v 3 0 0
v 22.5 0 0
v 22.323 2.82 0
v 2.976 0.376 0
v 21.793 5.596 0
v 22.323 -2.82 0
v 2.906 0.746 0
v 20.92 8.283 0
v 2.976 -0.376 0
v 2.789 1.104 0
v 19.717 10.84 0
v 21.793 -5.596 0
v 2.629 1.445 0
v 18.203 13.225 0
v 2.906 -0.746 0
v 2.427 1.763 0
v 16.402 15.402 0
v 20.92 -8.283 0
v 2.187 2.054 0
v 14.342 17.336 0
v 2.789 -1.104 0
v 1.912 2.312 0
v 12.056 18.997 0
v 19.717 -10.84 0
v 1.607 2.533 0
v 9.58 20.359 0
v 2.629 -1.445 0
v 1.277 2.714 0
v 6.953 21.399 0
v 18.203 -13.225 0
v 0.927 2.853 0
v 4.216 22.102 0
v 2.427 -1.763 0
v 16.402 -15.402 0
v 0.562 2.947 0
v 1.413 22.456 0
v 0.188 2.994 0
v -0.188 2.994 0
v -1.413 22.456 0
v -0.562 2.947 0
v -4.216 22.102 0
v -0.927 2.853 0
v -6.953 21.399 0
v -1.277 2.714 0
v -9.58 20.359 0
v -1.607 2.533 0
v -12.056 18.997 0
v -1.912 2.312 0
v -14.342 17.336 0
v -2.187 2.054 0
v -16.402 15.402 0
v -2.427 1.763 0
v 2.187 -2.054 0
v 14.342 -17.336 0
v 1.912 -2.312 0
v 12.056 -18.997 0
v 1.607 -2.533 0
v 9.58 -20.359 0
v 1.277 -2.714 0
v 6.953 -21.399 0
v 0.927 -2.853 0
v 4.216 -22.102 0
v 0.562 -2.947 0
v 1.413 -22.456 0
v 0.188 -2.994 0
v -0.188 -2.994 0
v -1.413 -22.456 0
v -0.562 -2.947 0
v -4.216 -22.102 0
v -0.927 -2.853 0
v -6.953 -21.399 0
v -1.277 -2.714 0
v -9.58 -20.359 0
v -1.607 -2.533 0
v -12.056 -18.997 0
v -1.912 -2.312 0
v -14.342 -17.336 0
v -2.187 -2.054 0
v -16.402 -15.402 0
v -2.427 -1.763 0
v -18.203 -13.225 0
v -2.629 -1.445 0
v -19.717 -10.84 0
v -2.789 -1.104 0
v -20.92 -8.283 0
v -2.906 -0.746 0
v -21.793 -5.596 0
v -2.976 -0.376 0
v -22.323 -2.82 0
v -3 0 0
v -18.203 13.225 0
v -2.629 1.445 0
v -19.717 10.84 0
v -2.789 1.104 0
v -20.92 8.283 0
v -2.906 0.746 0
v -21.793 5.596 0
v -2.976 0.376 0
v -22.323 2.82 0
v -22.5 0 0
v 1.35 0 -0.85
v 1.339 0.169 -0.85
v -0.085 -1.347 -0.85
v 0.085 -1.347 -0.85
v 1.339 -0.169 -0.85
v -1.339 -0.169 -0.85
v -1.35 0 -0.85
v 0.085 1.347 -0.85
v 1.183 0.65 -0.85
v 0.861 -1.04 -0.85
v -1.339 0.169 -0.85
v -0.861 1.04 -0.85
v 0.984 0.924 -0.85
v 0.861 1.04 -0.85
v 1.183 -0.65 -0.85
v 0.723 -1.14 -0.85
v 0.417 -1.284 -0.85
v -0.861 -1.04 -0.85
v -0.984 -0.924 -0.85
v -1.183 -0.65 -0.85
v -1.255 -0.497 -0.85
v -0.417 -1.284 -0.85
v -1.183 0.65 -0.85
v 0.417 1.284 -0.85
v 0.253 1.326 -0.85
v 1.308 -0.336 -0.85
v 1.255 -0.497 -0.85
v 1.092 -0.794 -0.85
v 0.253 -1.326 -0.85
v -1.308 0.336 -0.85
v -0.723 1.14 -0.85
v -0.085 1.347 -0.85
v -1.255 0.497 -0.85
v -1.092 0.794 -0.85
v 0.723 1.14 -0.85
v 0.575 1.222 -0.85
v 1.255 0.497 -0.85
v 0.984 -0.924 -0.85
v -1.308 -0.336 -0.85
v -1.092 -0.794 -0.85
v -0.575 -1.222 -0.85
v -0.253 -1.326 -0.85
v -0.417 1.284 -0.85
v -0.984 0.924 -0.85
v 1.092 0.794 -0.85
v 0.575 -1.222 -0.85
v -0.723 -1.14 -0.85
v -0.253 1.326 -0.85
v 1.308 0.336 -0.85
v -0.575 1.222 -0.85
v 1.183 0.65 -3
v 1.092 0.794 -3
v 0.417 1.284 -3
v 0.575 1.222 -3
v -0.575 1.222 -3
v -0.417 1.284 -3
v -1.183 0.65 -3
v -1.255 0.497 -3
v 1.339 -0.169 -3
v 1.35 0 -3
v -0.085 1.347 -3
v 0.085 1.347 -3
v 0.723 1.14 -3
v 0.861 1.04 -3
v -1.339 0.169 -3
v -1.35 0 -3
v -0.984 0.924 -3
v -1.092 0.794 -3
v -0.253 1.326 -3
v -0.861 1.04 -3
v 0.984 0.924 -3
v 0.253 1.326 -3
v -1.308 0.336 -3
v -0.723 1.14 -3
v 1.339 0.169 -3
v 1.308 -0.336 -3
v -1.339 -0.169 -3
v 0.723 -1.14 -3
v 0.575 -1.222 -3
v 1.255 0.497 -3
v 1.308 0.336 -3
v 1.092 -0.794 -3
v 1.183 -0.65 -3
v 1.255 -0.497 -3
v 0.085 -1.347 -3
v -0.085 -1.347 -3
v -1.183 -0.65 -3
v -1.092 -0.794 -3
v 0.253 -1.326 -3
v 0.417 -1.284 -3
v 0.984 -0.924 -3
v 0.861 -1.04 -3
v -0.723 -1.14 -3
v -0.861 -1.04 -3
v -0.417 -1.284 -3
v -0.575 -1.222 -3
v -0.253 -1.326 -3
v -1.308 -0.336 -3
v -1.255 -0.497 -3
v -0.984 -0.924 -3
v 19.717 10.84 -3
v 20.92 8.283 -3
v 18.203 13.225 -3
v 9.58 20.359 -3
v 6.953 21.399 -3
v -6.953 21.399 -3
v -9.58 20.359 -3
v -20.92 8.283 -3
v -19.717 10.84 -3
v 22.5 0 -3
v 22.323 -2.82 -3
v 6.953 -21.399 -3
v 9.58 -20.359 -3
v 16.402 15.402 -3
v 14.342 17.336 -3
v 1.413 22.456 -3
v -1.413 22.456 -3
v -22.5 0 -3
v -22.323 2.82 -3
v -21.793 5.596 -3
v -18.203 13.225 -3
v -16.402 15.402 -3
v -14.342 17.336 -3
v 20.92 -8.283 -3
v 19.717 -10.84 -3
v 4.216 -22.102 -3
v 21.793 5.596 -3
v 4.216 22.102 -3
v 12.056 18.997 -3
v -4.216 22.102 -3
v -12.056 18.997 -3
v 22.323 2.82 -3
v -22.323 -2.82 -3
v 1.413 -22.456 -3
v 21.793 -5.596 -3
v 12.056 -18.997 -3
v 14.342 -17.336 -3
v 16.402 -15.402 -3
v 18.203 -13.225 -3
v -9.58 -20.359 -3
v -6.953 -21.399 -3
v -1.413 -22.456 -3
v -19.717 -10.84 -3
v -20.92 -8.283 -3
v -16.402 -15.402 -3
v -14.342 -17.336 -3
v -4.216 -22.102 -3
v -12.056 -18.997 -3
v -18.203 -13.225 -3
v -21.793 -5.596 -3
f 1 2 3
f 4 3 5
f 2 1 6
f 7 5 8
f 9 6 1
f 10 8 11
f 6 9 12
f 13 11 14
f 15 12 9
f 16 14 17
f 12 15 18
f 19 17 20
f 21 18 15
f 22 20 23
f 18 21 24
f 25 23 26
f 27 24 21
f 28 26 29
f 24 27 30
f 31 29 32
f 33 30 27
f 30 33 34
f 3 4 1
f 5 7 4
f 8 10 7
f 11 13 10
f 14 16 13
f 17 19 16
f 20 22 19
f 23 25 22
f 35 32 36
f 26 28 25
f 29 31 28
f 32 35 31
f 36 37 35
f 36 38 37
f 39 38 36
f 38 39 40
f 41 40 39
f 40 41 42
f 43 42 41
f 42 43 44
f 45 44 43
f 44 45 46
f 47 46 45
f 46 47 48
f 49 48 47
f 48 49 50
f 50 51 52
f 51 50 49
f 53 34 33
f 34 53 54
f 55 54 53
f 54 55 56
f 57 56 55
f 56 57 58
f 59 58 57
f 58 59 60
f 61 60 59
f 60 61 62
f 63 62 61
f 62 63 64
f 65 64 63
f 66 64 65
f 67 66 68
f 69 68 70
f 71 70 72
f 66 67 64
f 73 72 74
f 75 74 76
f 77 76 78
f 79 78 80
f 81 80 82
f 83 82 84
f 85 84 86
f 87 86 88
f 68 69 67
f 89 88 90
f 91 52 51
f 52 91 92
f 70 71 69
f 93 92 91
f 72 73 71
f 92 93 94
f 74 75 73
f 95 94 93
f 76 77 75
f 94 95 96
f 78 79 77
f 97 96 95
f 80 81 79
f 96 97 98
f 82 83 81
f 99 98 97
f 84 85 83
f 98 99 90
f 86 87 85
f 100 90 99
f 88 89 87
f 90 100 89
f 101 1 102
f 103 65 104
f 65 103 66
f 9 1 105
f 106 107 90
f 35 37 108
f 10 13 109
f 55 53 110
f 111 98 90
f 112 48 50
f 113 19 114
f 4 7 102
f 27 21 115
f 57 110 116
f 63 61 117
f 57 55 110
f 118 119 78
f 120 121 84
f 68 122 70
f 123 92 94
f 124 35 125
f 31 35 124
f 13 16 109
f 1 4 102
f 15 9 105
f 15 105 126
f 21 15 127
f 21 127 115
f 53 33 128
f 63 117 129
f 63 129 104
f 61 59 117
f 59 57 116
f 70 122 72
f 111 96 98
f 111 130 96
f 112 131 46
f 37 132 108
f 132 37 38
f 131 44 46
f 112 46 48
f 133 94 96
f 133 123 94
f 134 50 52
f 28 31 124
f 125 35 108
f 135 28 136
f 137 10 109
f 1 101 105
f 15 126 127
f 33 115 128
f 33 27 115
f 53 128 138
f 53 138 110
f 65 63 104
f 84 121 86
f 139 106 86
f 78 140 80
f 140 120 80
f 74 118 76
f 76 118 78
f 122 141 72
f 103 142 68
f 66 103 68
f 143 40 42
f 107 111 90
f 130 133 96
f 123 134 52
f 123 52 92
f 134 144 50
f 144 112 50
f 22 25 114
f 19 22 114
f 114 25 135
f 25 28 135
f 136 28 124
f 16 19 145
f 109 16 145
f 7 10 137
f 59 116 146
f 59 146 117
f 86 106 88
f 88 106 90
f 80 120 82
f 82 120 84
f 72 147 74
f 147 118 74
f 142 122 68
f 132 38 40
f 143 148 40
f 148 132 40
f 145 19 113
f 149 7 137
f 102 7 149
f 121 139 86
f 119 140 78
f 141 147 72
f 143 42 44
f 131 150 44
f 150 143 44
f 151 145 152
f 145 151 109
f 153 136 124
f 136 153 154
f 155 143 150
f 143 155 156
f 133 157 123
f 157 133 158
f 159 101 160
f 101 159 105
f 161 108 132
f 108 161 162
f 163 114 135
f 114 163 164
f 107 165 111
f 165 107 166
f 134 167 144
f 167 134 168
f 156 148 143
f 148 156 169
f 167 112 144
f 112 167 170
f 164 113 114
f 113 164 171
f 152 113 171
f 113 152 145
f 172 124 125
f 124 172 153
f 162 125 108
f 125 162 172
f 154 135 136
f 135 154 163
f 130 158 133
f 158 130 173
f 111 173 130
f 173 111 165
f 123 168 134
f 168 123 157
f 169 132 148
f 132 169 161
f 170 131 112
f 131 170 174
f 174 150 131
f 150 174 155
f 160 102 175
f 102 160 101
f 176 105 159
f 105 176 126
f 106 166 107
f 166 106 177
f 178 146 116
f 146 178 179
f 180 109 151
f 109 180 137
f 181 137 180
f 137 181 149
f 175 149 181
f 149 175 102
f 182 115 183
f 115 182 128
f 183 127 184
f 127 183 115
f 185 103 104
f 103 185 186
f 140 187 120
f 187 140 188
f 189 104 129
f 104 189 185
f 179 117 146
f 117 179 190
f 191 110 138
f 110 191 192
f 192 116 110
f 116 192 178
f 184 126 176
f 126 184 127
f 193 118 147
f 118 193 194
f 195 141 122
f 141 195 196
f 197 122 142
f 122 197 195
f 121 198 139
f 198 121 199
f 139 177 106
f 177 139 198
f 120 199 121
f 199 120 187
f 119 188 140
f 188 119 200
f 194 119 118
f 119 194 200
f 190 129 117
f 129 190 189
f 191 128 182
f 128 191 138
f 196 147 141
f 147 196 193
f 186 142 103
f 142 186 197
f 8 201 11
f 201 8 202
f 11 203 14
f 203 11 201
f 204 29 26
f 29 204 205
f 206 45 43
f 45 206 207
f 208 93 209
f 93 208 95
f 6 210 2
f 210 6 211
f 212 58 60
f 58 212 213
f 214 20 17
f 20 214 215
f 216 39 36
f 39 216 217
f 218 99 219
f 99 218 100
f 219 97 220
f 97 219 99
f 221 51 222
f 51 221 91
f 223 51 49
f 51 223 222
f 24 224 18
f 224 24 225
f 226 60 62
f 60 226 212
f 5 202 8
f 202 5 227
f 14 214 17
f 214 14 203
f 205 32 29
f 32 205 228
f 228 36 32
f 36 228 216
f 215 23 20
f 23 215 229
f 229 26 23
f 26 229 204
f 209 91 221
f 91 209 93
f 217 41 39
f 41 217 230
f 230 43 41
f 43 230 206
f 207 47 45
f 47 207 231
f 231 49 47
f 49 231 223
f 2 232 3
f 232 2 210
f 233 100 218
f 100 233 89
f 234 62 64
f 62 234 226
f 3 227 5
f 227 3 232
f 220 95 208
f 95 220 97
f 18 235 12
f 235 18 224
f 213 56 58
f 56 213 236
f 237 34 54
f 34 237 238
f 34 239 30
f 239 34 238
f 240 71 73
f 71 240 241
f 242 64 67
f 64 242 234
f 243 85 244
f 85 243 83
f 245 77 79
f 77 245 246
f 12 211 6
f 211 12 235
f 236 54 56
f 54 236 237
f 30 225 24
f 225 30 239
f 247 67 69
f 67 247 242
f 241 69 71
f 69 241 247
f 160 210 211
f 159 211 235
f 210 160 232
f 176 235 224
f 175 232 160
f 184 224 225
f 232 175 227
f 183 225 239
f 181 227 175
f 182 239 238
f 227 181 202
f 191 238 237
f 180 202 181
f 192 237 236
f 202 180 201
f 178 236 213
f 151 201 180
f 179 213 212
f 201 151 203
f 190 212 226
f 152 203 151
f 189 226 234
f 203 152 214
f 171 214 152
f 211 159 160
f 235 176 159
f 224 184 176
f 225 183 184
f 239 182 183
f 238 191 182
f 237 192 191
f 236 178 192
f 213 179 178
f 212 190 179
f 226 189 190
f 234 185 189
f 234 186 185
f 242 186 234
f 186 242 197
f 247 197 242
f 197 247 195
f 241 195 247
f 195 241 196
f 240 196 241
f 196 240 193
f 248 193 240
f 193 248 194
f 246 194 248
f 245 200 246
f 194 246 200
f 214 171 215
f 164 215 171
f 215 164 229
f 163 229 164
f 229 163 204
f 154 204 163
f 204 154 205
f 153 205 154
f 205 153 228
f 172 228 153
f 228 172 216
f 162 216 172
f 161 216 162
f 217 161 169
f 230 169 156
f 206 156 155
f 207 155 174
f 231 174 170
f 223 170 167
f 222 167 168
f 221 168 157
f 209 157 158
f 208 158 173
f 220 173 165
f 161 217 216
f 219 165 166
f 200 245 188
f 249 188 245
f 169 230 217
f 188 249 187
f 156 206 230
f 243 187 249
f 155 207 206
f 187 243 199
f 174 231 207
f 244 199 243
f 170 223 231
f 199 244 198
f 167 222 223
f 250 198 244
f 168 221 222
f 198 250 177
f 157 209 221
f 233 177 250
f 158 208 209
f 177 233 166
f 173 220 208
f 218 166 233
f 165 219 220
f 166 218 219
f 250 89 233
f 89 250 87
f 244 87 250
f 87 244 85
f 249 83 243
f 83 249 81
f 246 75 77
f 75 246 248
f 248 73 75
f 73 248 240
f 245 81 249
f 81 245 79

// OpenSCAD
$fn = 50;

difference() {
	union() {
		translate(v = [0, 0, -3.0]) {
			cylinder(h = 3, r = 22.5);
		}
	}
	union() {
		translate(v = [0, 0, 0]) {
			rotate(a = [0, 0, 0]) {
				difference() {
					union() {
						translate(v = [0, 0, -6.0]) {
							cylinder(h = 6, r = 1.0);
						}
						translate(v = [0, 0, -0.85]) {
							cylinder(h = 0.85, r1 = 1.35, r2 = 3.0);
						}
						translate(v = [0, 0, -6.0]) {
							cylinder(h = 6, r = 1.35);
						}
						translate(v = [0, 0, -6.0]) {
							cylinder(h = 6, r = 1.0);
						}
					}
					union();
				}
			}
		}
	}
}
